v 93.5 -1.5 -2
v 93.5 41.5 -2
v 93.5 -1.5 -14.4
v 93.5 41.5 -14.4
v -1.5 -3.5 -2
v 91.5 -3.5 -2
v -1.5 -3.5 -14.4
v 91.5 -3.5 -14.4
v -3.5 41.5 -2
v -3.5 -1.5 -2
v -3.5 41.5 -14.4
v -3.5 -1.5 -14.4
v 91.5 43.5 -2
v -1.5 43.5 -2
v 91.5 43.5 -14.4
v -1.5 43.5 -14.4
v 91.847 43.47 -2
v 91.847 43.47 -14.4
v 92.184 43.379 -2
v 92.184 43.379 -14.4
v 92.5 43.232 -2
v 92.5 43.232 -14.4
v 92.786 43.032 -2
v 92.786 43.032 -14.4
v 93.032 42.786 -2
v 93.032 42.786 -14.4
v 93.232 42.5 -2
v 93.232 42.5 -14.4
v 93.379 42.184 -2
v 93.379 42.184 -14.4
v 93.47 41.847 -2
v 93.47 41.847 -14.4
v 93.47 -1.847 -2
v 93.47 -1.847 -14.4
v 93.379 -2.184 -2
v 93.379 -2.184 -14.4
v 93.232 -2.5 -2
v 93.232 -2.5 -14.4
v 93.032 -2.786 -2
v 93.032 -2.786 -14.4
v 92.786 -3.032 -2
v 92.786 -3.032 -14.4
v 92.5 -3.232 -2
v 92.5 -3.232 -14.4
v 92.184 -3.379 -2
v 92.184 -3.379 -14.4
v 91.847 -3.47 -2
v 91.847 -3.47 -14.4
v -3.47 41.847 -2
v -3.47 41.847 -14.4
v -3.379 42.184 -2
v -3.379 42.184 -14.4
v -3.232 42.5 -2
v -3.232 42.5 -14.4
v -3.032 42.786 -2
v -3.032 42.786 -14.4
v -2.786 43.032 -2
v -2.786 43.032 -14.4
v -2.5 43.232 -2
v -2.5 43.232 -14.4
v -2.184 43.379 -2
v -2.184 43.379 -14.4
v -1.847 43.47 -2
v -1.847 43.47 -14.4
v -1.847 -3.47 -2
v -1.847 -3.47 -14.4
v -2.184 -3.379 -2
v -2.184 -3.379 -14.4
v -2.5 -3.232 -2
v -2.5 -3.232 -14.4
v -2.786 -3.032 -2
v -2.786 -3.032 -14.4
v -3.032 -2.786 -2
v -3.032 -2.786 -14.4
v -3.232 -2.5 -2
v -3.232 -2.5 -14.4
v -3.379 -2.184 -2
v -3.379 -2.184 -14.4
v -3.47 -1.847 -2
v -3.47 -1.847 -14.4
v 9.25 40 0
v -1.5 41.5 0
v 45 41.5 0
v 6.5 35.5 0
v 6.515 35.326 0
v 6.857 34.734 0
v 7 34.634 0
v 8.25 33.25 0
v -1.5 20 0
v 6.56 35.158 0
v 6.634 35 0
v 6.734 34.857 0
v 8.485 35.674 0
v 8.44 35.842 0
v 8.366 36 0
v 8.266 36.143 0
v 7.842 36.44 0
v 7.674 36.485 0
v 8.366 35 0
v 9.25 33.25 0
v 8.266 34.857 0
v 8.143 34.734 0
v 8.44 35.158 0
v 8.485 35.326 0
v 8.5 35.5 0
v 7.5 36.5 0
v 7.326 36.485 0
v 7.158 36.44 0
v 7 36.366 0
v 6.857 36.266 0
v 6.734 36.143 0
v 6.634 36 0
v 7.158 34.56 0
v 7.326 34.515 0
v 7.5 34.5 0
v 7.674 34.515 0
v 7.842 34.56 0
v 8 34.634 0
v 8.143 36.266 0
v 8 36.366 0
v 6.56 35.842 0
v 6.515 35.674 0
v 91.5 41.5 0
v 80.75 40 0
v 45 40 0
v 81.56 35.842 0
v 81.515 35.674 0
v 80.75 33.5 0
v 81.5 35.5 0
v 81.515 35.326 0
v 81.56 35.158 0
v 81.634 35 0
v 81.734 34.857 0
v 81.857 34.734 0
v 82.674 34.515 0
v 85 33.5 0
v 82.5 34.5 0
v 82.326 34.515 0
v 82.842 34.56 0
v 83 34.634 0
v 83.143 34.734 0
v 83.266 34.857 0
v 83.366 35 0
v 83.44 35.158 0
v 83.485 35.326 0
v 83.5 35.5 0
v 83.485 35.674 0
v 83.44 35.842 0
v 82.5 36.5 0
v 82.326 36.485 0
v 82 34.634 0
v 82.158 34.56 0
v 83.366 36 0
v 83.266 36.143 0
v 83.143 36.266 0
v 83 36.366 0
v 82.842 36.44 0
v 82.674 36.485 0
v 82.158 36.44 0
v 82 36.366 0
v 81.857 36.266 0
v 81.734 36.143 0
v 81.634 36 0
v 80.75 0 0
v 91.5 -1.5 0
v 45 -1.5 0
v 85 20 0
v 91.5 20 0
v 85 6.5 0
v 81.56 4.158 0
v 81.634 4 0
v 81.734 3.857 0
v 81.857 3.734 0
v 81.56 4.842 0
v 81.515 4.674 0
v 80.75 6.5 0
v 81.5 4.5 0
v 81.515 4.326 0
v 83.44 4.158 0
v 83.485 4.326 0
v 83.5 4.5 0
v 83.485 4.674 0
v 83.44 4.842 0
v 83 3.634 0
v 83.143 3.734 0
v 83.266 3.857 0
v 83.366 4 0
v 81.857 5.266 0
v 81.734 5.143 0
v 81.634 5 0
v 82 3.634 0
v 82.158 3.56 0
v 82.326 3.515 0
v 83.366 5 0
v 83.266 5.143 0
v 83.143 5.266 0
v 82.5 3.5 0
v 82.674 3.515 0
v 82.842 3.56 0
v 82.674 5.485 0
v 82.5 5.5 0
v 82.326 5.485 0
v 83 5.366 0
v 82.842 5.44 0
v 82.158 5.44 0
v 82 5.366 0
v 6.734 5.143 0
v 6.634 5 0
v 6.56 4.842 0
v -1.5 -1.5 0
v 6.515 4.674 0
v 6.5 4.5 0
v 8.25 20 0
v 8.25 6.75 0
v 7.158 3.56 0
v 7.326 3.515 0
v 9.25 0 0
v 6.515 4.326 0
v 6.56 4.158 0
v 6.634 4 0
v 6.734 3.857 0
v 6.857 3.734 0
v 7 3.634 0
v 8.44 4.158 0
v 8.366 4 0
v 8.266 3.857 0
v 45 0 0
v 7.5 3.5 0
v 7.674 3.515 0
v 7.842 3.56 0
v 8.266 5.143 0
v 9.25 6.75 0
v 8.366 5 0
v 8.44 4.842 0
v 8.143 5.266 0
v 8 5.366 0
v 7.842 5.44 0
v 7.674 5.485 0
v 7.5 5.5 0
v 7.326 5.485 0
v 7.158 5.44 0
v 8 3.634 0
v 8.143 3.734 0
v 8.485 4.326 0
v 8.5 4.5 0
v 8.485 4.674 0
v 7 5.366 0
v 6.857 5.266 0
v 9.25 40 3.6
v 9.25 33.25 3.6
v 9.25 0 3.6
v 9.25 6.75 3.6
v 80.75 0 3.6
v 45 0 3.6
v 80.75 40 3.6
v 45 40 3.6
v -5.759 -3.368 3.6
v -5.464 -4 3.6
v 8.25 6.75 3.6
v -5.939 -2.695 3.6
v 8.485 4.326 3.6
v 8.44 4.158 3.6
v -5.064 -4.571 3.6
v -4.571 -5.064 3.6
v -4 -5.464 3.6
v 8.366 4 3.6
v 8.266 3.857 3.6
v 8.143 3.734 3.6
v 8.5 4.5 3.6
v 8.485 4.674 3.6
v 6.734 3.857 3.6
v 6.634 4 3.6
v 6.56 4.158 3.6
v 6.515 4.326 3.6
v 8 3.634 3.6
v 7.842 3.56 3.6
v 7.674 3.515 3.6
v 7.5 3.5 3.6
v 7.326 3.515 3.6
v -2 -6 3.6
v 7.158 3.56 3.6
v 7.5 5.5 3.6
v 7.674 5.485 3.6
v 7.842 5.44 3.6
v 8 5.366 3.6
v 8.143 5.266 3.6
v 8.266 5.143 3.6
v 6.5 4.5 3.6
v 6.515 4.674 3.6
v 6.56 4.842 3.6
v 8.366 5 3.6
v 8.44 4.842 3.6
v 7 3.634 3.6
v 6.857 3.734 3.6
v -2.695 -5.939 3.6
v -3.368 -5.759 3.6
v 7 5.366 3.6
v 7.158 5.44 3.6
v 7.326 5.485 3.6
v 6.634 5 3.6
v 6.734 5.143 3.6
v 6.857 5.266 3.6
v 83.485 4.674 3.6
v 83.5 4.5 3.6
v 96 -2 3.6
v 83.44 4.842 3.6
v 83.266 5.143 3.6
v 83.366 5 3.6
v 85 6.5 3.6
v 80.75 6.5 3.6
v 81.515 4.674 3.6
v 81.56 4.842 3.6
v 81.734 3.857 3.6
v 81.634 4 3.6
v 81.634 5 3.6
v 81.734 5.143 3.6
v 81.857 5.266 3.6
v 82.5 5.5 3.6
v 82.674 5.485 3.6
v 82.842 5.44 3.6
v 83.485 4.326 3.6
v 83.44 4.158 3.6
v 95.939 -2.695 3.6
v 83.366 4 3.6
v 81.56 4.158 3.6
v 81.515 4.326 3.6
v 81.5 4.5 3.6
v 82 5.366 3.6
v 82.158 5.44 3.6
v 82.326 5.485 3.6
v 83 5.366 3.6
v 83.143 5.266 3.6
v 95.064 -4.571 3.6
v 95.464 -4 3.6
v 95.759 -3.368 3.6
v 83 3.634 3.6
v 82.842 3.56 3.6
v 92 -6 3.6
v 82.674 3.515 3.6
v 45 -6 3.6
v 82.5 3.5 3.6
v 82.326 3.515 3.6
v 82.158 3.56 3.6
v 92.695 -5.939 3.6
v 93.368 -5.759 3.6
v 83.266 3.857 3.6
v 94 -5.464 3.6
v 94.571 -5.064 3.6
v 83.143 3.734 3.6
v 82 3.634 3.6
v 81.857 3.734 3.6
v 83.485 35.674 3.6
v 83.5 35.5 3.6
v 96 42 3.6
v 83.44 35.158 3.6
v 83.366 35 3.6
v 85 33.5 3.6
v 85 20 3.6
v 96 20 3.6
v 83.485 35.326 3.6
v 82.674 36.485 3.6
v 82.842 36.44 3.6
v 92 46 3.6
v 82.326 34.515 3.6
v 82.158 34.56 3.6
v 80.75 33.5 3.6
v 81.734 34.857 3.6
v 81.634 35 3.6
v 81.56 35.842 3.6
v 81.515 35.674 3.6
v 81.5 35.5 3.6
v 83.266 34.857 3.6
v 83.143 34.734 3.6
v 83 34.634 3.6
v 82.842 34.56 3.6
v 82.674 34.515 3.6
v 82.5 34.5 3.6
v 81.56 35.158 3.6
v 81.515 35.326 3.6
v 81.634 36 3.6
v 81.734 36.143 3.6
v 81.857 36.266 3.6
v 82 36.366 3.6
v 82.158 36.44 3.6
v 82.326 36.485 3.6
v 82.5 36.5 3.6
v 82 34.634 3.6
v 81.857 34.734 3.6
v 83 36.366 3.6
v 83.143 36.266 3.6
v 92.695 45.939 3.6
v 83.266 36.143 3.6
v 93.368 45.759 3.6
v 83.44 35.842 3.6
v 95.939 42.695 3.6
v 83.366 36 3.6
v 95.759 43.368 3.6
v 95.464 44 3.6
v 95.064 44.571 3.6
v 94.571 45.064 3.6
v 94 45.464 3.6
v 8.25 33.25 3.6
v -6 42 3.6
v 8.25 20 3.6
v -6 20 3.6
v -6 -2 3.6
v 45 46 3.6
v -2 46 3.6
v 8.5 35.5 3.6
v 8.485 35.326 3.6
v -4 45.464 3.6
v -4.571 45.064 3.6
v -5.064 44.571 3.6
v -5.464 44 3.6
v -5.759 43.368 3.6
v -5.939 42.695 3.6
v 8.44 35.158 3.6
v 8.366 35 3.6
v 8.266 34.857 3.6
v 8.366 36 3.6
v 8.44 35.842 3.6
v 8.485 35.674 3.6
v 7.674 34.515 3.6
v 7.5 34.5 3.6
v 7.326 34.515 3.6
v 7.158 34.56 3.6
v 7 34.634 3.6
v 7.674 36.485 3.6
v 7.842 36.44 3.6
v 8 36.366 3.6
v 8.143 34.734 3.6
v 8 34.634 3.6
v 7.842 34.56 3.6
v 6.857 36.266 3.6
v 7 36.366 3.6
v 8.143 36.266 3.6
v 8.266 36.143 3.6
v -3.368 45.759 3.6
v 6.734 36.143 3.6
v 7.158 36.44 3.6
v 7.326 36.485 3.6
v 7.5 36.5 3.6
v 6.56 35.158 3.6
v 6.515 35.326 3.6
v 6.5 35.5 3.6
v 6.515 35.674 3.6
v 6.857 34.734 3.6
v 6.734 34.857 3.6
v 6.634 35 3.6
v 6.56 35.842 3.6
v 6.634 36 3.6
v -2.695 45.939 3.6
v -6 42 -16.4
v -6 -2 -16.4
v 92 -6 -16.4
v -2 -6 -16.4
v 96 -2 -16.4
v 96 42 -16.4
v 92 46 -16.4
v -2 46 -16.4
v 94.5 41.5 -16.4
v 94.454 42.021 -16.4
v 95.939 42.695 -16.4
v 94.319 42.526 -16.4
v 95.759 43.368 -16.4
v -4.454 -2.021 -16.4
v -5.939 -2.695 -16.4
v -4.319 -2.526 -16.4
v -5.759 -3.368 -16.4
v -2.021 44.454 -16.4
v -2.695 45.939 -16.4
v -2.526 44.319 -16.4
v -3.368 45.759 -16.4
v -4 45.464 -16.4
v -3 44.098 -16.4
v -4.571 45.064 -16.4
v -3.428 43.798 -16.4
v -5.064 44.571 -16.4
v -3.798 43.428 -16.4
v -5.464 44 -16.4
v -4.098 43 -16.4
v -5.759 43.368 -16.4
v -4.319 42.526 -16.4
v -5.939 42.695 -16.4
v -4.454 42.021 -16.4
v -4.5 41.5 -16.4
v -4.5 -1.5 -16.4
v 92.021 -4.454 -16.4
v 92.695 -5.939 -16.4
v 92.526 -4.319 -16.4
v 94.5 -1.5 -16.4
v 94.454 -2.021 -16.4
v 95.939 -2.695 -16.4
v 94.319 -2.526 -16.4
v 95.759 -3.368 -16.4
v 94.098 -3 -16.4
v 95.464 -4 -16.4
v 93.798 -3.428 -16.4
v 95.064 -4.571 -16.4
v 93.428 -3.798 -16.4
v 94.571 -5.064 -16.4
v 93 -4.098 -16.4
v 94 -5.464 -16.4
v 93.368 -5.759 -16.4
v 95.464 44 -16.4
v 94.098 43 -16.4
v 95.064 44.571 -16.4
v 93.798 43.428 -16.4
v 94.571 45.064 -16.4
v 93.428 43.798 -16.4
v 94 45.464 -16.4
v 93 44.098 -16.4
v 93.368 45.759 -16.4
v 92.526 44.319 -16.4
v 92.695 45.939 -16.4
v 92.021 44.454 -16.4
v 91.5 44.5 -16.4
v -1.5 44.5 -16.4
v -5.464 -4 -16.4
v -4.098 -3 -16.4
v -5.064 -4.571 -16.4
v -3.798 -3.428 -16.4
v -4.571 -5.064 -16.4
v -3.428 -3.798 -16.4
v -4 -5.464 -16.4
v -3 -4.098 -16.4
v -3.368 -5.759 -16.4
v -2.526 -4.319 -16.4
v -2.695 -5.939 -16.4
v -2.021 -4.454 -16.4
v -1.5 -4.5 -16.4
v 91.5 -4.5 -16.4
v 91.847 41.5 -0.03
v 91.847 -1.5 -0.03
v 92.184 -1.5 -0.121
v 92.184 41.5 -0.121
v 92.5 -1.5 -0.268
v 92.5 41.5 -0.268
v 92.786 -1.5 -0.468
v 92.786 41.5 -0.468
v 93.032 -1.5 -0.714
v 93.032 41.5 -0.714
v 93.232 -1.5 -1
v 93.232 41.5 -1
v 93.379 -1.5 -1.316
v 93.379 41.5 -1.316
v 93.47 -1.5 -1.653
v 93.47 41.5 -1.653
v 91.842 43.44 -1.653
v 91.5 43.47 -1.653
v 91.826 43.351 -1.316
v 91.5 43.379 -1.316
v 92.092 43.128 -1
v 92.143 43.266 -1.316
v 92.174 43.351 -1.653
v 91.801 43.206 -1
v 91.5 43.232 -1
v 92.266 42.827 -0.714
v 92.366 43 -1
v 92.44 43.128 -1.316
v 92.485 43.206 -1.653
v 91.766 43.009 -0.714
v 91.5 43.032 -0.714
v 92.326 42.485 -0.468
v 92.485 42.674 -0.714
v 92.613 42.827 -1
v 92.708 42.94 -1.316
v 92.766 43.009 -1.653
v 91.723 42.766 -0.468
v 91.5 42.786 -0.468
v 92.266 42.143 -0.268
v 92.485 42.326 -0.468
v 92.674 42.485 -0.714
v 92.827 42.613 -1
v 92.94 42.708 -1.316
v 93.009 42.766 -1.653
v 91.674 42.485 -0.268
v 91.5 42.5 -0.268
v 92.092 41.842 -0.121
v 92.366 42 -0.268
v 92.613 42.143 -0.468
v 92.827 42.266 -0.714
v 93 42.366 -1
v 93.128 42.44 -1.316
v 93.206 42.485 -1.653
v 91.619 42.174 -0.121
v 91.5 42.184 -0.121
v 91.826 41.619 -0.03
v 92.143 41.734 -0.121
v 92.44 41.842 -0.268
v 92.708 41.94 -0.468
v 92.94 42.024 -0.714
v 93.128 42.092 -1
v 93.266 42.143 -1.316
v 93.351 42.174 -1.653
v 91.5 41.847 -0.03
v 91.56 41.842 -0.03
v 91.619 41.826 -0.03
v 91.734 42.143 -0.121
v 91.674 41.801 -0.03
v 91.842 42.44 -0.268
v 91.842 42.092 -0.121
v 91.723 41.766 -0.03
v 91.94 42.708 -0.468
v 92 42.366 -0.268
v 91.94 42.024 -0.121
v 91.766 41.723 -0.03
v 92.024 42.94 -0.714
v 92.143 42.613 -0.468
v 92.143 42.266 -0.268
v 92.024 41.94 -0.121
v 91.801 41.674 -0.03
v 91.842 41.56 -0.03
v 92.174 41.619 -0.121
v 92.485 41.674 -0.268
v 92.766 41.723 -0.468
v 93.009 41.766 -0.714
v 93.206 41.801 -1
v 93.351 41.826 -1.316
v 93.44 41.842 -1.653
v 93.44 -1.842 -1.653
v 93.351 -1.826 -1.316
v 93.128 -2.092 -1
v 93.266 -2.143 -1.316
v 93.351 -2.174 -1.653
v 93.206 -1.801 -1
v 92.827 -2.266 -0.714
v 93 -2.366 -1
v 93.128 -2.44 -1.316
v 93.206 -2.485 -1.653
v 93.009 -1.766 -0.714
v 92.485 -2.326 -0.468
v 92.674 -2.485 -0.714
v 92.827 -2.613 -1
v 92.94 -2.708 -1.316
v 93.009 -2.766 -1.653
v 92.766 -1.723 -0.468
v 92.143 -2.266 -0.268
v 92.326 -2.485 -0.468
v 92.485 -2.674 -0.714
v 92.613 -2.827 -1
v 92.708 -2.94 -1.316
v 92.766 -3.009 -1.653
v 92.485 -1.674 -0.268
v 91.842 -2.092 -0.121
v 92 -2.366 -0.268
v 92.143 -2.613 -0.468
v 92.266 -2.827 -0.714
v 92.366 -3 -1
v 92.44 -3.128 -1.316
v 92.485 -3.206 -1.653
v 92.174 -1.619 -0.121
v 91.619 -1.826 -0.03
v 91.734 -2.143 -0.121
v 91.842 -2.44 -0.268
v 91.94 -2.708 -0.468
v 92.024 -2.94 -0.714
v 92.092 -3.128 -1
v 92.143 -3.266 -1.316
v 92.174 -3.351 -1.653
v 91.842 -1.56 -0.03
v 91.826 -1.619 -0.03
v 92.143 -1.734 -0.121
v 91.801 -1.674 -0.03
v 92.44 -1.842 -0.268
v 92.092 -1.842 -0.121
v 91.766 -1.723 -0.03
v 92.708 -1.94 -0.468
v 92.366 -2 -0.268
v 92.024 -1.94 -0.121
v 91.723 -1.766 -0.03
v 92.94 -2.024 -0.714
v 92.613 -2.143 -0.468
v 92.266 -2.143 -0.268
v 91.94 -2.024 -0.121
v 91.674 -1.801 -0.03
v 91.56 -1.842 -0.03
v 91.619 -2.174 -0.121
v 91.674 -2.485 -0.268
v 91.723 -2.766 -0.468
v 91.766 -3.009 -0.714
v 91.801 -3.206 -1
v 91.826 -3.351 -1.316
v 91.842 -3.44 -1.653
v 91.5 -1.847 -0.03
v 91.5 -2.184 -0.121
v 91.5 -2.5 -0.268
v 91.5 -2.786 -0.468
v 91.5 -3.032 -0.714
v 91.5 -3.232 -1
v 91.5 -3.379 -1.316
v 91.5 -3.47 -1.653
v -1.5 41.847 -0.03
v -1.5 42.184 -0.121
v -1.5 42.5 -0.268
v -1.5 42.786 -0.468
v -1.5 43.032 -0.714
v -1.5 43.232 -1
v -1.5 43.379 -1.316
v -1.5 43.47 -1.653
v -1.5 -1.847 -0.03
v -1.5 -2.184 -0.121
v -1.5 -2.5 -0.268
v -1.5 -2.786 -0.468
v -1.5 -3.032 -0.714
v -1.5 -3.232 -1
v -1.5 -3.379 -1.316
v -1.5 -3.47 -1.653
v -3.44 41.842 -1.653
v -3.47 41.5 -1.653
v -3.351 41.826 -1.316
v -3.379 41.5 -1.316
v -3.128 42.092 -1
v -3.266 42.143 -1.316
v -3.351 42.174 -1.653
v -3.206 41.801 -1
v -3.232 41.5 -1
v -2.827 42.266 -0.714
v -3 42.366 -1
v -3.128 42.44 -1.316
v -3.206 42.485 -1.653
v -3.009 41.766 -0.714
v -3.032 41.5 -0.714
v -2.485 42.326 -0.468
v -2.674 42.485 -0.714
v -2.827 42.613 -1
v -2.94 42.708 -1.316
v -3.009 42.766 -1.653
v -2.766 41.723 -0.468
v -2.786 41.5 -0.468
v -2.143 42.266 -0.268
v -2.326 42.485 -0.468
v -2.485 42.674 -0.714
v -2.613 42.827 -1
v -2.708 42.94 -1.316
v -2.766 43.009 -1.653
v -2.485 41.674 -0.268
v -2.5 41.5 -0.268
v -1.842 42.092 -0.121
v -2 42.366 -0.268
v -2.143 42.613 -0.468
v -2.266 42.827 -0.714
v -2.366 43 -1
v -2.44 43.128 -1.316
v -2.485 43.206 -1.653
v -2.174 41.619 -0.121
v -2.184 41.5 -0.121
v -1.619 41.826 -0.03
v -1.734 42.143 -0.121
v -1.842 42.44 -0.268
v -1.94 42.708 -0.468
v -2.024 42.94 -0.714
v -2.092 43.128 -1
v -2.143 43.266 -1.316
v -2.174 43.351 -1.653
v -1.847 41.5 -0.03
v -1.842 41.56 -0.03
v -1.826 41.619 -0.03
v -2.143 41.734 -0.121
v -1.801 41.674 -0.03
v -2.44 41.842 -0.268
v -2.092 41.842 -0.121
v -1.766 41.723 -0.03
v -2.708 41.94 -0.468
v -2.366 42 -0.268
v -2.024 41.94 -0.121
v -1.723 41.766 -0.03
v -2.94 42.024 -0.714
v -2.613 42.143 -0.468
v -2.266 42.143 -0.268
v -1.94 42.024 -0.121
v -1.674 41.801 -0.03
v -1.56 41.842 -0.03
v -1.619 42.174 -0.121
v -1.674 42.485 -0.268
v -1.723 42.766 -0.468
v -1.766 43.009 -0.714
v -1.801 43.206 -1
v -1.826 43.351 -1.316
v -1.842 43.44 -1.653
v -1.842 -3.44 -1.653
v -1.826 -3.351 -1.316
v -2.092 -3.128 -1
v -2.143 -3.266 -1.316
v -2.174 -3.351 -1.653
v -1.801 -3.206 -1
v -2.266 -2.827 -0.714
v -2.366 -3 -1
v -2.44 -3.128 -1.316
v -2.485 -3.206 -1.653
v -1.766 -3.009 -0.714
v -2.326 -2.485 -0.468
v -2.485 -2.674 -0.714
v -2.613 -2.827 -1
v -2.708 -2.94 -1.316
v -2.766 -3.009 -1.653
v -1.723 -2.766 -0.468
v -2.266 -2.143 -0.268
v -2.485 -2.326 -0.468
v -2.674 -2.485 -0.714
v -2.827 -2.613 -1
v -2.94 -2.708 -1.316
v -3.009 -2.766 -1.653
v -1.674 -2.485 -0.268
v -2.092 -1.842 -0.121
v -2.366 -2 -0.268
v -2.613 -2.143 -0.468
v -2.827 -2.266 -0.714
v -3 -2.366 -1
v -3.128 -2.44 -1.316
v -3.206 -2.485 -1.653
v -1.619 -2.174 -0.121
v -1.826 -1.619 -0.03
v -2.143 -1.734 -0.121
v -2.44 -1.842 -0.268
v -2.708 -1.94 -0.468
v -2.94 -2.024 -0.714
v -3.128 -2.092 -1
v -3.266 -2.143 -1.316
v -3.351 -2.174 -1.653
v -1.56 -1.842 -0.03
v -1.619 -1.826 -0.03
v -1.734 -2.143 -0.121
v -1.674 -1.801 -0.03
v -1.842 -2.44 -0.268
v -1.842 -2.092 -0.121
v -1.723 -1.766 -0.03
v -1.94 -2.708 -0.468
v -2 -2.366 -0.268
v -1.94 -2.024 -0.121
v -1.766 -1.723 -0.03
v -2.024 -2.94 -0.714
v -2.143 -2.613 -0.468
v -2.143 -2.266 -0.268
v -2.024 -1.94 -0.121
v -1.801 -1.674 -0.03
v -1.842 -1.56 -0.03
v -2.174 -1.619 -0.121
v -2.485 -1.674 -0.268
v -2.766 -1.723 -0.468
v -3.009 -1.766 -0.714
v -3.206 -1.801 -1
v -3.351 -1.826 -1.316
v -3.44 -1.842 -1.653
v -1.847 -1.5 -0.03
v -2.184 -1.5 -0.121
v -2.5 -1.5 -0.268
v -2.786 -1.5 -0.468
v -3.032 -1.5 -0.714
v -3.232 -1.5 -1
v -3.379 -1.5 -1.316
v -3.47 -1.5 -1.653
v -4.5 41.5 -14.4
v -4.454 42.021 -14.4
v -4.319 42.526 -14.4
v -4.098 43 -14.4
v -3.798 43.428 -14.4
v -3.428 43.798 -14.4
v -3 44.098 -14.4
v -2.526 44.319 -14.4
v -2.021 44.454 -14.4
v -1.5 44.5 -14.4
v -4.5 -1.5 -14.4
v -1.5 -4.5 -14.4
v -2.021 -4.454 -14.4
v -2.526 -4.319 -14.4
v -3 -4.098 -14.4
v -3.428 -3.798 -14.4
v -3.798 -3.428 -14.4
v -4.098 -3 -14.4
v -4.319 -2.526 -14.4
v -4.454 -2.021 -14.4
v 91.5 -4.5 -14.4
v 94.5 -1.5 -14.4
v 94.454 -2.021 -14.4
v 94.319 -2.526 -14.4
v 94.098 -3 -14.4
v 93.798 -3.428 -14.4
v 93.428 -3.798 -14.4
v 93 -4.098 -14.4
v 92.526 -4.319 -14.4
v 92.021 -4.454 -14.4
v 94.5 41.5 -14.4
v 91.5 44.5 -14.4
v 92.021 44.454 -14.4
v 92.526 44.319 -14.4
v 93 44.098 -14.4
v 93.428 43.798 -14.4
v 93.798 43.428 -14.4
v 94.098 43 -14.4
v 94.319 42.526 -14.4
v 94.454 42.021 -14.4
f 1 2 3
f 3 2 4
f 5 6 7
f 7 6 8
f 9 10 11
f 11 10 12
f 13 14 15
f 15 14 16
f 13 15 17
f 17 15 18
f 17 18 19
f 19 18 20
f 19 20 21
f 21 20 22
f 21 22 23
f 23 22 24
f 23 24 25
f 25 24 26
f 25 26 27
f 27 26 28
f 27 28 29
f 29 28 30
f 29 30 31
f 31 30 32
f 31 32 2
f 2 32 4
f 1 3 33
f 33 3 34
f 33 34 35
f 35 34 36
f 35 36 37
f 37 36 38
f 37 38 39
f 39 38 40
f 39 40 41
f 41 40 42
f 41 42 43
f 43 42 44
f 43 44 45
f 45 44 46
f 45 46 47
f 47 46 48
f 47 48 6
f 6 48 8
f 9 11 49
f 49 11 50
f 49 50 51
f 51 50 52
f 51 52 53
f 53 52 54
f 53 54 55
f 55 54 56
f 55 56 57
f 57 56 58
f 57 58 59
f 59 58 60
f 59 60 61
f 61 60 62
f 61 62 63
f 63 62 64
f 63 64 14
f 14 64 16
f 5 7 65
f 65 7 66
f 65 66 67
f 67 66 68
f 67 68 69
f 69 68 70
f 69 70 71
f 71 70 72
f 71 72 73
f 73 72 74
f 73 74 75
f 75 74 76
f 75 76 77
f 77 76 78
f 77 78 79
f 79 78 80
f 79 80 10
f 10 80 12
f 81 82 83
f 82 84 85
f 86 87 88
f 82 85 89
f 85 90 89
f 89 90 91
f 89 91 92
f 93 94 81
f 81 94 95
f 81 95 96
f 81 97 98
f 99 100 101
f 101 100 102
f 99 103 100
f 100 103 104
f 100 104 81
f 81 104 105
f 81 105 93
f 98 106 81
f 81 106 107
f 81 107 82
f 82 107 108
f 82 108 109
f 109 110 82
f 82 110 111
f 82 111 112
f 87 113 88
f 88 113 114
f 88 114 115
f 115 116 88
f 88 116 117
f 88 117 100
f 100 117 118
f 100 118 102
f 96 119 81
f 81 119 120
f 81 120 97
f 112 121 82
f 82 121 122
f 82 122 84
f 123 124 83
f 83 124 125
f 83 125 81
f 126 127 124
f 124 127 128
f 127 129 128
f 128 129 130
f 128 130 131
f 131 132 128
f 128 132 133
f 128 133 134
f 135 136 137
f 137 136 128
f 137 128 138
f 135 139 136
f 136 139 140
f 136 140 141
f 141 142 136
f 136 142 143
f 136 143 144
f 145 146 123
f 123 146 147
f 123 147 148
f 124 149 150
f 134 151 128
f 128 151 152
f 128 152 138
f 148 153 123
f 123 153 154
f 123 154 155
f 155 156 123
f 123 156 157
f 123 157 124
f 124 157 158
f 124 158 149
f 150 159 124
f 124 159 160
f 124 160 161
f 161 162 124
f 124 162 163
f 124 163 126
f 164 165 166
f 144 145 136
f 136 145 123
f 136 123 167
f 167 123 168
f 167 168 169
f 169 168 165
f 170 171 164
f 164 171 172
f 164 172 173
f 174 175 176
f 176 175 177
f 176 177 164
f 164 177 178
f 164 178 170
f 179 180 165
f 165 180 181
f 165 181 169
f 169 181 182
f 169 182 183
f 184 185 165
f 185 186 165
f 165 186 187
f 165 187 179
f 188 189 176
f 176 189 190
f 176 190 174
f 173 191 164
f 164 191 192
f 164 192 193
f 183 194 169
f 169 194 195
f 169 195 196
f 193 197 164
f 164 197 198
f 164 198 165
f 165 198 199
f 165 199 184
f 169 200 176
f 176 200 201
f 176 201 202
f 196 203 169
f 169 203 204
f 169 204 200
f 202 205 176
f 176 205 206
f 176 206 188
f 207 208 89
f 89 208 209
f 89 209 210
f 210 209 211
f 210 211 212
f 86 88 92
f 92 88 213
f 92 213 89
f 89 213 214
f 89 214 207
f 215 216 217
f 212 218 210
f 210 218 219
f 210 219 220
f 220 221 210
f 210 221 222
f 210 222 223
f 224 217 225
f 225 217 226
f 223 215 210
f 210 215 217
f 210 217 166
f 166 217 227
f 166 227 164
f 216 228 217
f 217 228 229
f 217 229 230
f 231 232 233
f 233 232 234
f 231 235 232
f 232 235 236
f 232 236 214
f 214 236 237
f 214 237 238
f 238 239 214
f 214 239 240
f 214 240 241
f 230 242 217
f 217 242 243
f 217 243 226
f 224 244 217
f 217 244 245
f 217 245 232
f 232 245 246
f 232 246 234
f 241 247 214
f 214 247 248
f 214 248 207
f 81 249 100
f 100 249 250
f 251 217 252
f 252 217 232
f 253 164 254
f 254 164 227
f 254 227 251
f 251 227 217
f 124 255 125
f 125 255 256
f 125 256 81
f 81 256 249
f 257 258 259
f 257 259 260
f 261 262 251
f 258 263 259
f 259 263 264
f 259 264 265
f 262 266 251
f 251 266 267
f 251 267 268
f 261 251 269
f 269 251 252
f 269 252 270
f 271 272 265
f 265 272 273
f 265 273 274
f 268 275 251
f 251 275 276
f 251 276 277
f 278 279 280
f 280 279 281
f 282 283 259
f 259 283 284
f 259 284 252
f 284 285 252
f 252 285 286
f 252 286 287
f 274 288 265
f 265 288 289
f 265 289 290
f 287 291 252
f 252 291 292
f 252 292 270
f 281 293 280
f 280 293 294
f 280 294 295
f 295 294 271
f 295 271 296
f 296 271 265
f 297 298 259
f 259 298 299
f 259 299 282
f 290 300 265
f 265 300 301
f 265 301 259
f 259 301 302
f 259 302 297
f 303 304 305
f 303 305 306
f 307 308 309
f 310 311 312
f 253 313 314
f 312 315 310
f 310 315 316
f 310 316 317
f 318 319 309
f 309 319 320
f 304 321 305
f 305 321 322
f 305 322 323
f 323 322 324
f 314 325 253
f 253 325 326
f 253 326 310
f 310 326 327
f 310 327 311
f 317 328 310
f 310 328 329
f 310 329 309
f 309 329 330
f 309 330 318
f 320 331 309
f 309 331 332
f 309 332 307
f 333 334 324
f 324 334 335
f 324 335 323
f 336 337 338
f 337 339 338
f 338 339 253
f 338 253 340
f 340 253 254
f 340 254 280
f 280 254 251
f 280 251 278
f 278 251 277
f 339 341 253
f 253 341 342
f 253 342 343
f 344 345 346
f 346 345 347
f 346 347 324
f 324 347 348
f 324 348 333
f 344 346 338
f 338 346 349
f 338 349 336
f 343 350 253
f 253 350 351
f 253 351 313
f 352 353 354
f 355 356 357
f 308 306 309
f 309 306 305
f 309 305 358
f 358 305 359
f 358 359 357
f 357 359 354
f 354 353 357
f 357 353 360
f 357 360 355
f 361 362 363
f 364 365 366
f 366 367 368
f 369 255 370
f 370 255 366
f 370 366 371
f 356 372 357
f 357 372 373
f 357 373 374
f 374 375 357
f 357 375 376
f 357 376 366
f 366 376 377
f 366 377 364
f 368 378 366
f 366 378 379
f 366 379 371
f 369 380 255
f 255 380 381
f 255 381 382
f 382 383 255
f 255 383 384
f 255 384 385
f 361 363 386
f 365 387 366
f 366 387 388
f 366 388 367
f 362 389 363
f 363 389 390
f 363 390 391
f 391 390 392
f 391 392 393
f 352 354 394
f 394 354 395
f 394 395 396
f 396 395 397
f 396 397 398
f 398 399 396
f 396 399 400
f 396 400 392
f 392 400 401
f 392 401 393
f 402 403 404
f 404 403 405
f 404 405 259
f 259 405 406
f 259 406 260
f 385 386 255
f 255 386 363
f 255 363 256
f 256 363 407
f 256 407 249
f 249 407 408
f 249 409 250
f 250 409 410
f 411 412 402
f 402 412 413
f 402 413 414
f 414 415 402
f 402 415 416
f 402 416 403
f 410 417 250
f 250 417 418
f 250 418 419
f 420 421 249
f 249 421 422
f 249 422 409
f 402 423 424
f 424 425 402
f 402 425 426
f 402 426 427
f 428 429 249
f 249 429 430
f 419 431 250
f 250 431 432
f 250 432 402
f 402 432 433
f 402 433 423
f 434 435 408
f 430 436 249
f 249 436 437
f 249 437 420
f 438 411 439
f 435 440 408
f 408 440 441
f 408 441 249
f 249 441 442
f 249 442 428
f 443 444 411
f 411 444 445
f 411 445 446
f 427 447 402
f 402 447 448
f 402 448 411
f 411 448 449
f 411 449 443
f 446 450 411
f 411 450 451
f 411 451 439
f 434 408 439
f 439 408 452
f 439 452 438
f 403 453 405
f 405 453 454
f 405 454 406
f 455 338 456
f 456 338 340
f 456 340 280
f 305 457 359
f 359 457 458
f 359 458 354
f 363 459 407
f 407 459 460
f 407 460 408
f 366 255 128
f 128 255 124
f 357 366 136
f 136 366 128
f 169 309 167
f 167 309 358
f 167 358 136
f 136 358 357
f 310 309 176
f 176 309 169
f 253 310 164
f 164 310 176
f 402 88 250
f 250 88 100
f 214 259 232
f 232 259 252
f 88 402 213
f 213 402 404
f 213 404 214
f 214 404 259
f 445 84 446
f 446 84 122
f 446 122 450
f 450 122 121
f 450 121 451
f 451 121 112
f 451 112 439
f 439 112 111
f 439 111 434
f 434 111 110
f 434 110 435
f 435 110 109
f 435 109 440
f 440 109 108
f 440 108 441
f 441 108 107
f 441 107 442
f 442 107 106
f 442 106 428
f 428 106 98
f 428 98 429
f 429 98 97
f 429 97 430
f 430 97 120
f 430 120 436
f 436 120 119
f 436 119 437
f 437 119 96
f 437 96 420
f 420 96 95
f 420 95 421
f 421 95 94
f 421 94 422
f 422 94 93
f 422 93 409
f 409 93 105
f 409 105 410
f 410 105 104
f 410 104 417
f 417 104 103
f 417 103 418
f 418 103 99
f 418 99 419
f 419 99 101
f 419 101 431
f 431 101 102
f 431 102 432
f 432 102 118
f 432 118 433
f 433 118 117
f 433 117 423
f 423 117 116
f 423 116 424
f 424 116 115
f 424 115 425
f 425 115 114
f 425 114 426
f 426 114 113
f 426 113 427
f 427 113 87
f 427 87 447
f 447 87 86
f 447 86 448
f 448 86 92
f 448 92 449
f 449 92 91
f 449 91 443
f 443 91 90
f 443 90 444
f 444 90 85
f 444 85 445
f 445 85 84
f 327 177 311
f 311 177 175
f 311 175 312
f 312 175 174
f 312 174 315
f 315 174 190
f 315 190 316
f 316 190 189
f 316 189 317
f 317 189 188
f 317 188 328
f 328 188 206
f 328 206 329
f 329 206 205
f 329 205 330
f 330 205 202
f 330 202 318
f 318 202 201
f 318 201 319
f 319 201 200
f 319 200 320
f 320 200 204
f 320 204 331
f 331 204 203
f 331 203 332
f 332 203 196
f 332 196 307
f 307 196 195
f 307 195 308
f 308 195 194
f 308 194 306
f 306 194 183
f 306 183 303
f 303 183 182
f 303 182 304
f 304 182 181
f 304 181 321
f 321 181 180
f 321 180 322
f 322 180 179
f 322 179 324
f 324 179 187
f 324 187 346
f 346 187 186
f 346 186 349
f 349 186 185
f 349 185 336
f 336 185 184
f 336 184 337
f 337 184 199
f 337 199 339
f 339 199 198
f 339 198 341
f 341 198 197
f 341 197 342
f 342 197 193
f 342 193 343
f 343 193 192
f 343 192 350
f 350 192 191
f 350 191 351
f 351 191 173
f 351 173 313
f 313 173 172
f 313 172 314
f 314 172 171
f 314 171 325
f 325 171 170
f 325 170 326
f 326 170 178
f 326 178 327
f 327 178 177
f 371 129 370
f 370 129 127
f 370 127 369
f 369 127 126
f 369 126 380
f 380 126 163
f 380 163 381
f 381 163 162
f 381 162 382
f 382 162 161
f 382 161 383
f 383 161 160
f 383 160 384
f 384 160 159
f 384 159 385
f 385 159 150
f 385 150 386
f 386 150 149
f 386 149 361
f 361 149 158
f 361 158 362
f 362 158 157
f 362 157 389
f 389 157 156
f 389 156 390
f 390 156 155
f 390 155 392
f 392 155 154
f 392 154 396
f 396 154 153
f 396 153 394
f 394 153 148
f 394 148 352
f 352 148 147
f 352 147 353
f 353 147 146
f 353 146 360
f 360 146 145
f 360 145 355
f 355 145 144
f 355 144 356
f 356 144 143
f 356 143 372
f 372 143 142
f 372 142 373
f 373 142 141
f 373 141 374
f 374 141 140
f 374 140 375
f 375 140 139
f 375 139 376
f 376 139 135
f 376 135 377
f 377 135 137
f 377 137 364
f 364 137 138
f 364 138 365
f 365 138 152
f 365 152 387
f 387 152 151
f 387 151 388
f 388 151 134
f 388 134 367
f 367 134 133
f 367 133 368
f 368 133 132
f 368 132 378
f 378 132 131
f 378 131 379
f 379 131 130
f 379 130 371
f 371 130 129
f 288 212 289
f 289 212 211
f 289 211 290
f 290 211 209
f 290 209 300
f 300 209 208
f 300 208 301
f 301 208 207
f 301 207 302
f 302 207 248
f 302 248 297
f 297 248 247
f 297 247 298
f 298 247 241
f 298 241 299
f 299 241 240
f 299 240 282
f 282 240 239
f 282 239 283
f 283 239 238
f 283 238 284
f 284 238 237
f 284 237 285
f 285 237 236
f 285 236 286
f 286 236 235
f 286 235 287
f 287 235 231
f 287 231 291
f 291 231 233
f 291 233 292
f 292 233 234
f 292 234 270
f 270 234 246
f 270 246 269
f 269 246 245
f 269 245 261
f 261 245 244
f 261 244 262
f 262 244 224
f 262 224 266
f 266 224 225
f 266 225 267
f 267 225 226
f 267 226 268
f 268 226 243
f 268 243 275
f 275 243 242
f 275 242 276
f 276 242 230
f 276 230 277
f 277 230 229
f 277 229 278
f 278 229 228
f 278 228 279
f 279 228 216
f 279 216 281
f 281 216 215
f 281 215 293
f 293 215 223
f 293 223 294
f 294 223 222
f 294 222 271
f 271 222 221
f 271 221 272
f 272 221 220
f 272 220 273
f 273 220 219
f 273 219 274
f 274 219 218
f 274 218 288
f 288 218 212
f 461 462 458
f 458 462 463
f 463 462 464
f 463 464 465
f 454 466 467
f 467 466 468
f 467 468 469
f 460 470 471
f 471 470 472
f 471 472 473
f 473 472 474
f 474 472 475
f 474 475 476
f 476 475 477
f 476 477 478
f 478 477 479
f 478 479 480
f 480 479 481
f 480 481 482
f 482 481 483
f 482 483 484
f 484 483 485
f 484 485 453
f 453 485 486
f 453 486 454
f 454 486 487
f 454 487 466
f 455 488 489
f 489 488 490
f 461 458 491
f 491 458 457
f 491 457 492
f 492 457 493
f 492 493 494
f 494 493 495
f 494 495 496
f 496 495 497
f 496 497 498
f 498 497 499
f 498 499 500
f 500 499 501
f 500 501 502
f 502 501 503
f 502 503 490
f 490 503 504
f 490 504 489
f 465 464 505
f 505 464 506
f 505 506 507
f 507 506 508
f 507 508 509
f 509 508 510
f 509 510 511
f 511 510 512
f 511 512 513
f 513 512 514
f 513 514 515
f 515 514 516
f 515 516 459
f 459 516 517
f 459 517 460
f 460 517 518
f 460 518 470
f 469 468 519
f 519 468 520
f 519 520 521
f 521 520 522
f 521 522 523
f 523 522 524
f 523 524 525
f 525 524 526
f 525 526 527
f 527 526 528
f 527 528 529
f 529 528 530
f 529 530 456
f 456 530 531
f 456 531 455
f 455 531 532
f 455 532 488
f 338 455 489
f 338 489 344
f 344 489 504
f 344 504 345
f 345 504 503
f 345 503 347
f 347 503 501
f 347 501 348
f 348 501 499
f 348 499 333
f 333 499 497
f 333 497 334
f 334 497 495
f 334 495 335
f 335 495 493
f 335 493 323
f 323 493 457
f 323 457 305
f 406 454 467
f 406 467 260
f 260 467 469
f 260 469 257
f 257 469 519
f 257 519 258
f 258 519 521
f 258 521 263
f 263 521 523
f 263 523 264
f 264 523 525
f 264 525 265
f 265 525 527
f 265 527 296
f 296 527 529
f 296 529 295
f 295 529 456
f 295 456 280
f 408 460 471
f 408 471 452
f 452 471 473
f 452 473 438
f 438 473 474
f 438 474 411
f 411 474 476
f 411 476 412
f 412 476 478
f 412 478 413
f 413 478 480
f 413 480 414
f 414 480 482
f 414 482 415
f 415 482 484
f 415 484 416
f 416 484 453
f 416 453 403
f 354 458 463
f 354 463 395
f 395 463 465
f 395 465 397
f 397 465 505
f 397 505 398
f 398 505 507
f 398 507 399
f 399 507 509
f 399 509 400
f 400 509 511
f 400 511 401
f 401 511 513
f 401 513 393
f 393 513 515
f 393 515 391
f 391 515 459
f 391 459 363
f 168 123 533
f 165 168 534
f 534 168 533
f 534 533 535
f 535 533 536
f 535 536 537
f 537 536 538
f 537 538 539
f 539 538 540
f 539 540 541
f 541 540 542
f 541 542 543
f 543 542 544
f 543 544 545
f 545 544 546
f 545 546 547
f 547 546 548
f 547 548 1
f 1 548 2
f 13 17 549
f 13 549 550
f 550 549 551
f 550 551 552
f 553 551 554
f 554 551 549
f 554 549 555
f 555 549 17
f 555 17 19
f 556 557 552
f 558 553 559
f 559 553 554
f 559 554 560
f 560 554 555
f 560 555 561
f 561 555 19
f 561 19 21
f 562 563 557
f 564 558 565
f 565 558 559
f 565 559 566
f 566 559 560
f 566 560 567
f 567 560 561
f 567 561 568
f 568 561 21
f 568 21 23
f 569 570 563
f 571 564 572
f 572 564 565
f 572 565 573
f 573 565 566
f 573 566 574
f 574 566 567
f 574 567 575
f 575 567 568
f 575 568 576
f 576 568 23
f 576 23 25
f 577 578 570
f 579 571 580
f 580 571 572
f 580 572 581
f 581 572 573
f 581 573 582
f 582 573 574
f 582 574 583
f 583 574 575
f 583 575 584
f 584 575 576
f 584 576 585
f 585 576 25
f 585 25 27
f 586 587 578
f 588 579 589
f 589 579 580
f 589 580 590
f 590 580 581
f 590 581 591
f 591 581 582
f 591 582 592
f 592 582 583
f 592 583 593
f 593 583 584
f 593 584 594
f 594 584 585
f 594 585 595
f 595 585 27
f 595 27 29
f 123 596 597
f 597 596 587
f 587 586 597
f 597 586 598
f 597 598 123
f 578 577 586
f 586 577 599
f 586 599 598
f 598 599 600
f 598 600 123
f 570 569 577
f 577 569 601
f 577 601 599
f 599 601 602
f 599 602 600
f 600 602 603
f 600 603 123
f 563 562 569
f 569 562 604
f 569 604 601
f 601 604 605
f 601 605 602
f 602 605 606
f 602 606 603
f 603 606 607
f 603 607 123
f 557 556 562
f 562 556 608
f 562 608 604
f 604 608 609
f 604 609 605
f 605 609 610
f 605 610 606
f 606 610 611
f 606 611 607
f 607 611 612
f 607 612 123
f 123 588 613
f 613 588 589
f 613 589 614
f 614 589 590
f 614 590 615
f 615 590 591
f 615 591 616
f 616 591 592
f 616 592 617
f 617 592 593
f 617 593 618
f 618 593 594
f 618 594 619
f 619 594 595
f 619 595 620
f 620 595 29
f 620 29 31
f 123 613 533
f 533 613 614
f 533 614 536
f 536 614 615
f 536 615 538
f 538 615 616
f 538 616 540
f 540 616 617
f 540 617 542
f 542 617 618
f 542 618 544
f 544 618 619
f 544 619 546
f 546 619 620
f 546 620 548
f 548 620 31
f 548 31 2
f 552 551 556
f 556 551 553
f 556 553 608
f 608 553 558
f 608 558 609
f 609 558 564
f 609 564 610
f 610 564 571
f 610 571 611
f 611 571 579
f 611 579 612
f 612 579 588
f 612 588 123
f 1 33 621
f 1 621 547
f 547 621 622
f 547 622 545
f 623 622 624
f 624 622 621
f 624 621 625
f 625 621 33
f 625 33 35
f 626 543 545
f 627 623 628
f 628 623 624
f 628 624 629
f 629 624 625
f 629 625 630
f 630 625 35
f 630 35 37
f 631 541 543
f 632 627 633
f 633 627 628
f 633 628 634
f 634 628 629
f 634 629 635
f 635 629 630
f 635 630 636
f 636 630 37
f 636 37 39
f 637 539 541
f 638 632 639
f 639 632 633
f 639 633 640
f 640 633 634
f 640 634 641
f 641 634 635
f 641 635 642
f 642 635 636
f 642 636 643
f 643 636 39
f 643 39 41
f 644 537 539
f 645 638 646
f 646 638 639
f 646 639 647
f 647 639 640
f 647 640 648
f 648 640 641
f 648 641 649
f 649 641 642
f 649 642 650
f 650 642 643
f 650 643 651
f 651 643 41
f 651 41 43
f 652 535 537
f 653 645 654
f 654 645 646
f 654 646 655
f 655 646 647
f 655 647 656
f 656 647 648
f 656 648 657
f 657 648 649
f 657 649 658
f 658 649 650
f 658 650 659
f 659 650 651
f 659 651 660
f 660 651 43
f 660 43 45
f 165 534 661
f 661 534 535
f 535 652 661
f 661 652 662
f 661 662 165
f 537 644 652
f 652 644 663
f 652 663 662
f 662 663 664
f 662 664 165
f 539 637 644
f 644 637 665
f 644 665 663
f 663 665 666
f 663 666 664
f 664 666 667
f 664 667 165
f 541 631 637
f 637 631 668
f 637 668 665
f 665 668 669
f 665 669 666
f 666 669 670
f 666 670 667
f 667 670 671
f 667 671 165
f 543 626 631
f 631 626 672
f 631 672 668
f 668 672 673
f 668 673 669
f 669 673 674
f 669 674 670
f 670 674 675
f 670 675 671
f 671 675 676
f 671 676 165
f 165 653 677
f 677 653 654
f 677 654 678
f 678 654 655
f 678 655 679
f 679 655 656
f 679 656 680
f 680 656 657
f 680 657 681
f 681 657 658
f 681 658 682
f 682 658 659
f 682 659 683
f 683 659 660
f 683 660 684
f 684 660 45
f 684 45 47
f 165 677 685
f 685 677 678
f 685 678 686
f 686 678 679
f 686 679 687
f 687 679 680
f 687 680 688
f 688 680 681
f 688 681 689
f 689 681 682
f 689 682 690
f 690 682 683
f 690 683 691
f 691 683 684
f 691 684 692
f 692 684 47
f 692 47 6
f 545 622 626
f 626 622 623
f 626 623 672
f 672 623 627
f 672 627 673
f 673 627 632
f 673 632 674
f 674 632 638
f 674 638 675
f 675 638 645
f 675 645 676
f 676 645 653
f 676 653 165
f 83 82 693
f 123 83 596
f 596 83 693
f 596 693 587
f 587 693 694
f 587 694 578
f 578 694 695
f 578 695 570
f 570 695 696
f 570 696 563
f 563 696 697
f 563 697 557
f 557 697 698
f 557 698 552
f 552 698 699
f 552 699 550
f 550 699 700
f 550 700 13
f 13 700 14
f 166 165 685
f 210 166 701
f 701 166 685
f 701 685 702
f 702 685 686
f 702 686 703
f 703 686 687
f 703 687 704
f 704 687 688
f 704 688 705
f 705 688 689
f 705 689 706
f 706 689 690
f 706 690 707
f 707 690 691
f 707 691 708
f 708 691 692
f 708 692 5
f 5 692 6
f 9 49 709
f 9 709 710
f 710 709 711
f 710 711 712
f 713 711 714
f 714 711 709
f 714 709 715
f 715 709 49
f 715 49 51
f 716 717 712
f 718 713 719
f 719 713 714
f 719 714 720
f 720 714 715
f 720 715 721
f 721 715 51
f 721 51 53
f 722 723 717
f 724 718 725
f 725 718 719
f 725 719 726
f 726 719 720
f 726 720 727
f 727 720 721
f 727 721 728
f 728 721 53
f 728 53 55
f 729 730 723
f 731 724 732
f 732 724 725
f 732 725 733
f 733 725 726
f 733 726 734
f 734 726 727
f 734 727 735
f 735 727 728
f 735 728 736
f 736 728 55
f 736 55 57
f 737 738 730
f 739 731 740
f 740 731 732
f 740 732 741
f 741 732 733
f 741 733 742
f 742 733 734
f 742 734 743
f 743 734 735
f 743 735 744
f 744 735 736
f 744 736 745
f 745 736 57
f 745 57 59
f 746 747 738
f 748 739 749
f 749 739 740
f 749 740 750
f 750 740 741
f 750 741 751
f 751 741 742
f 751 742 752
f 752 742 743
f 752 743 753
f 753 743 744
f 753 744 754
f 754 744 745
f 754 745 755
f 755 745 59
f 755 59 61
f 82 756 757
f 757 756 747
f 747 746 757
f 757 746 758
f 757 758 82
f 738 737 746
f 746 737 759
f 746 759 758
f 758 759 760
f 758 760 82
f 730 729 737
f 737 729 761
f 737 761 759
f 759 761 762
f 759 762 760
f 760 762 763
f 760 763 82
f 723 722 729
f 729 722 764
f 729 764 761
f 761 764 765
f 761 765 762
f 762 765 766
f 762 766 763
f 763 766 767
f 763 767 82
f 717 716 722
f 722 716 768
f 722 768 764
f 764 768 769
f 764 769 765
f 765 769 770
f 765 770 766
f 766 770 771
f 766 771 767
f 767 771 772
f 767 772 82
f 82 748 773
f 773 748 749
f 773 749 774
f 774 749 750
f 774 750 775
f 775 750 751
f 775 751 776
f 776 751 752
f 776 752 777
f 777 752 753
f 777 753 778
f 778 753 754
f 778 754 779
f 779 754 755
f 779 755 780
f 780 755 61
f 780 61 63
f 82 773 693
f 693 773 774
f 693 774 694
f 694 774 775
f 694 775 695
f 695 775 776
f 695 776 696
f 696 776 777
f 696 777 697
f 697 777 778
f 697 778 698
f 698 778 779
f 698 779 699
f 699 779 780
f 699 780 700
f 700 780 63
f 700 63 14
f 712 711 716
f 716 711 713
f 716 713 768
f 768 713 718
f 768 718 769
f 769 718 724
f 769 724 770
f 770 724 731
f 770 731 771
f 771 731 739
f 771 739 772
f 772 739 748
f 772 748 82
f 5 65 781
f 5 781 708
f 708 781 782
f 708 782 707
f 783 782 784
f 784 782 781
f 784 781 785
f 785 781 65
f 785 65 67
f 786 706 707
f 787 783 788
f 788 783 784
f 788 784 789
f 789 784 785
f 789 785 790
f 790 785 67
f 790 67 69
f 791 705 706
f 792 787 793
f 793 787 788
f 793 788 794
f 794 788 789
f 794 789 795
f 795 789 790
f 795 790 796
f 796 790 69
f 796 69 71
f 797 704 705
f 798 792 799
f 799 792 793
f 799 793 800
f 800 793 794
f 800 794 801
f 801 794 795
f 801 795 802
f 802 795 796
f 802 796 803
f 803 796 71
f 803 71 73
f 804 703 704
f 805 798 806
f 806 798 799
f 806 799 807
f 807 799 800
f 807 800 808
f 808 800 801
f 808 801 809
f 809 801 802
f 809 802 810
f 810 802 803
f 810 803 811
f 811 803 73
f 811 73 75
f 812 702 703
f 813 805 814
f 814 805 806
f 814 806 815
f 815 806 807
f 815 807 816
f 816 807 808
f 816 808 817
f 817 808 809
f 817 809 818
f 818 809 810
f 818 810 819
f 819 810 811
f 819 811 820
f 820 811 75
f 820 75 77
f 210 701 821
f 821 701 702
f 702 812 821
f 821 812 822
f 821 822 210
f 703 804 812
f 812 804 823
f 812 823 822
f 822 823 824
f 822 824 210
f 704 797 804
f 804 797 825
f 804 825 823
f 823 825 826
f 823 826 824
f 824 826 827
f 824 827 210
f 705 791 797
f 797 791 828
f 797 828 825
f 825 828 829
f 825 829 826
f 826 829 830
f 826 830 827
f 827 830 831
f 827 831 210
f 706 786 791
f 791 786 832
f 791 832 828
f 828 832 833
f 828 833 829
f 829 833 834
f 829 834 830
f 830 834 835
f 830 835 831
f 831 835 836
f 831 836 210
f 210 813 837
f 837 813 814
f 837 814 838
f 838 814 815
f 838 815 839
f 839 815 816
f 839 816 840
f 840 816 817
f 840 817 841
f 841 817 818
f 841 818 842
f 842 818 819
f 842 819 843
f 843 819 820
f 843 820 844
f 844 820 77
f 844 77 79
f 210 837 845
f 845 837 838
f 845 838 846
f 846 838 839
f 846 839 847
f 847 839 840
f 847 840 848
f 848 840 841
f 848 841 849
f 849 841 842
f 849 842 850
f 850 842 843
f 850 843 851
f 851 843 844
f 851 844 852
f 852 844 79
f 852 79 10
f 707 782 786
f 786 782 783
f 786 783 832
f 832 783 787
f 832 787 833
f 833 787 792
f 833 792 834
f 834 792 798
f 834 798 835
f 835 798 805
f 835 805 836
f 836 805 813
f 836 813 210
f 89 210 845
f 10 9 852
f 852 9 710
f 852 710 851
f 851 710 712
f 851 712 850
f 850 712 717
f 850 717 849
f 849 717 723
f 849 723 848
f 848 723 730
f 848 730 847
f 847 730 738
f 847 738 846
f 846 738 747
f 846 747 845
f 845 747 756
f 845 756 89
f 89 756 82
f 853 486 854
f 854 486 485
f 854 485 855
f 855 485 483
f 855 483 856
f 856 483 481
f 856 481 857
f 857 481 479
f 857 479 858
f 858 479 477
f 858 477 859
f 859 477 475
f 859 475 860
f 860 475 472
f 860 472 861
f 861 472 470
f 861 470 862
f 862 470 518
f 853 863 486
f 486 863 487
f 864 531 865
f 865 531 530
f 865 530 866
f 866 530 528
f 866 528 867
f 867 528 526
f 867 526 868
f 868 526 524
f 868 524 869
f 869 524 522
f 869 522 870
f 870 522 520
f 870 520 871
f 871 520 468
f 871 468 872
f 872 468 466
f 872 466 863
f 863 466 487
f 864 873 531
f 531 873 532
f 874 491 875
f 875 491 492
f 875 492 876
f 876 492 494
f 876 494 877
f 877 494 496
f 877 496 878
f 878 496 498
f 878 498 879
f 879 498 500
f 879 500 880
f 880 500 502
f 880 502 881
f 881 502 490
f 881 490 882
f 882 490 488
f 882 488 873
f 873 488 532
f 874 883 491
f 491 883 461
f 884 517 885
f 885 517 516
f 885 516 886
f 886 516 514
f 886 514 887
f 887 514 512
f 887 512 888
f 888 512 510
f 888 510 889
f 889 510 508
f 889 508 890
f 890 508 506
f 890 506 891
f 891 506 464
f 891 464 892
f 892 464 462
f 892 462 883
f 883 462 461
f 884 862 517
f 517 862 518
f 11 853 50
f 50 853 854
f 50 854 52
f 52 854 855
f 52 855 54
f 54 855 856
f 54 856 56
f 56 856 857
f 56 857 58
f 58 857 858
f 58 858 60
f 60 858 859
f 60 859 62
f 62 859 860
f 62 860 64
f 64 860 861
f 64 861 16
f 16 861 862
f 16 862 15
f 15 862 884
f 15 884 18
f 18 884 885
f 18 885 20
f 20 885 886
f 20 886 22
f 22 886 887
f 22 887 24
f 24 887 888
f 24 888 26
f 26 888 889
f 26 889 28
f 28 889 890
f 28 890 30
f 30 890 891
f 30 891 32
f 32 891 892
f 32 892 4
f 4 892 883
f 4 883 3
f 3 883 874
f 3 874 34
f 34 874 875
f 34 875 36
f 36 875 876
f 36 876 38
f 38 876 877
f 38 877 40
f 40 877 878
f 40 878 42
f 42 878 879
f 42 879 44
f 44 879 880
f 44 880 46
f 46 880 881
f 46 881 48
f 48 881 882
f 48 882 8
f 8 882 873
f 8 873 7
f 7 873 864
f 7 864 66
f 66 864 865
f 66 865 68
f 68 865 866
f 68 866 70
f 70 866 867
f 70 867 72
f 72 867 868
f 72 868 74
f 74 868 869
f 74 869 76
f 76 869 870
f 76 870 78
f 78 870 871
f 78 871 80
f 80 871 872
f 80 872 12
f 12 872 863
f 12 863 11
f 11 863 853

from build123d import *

# Parameters (mm, degrees)
ESQUISSE1_W                     = 102
ESQUISSE1_H                     = 52
ESQUISSE1_W_2                   = 90
ESQUISSE1_H_2                   = 40
EXTRU_MINCE1_DEPTH              = 3.6
ESQUISSE2_W                     = 9.25
ESQUISSE2_H                     = 40
BOSS_EXTRU_1_DEPTH              = 3.6
ESQUISSE3_R                     = 1
ESQUISSE3_W                     = 4.29767414
ESQUISSE3_H                     = 26.5
ENL_V_MAT_EXTRU_1_DEPTH         = 3.6
ESQUISSE5_W                     = 102
ESQUISSE5_H                     = 52
ESQUISSE5_W_2                   = 97
ESQUISSE5_H_2                   = 47
EXTRU_MINCE2_DEPTH              = 20
CONG_1_R                        = 4
CONG_2_R                        = 2
ENL_V_DE_MAT_EXTRU_MINCE1_DEPTH = 2


with BuildPart() as part:
    # Esquisse1 → Extru.-Mince1 (new body)
    with BuildSketch(Plane.XY):
        with Locations((45, 20)):
            Rectangle(ESQUISSE1_W, ESQUISSE1_H)
        with Locations((45, 20)):
            Rectangle(ESQUISSE1_W_2, ESQUISSE1_H_2, mode=Mode.SUBTRACT)
    extrude(amount=EXTRU_MINCE1_DEPTH)

    # Esquisse2 → Boss.-Extru.1 (add)
    with BuildSketch(Plane.XY):
        with Locations((4.625, 20)):
            Rectangle(ESQUISSE2_W, ESQUISSE2_H)
        Polygon((90, 40), (90, 0), (80.75, 0), (80.75, 6.5), (85, 6.5), (85, 33.5), (80.75, 33.5), (80.75, 40), align=None)
    extrude(amount=BOSS_EXTRU_1_DEPTH)

    # Esquisse3 → Enlèv. mat.-Extru.1 (cut)
    with BuildSketch(Plane.XY):
        with Locations((7.5, 35.5)):
            Circle(ESQUISSE3_R)
        with Locations((7.5, 4.5)):
            Circle(ESQUISSE3_R)
        with Locations((82.5, 35.5)):
            Circle(ESQUISSE3_R)
        with Locations((82.5, 4.5)):
            Circle(ESQUISSE3_R)
        with Locations((10.39883707, 20)):
            Rectangle(ESQUISSE3_W, ESQUISSE3_H)
    extrude(amount=ENL_V_MAT_EXTRU_1_DEPTH, mode=Mode.SUBTRACT)

    # Esquisse5 → Extru.-Mince2 (add)
    with BuildSketch(Plane.XY.offset(3.6)):
        with Locations((45, 20)):
            Rectangle(ESQUISSE5_W, ESQUISSE5_H)
        with Locations((45, 20)):
            Rectangle(ESQUISSE5_W_2, ESQUISSE5_H_2, mode=Mode.SUBTRACT)
    extrude(amount=-EXTRU_MINCE2_DEPTH)

    # Congé1
    cong_1_edges = [part.edges().sort_by_distance(p)[0] for p in [
        (-6, 46, -6.4),
        (96, 46, -6.4),
        (96, -6, -6.4),
        (-6, -6, -6.4),
    ]]
    fillet(cong_1_edges, radius=CONG_1_R)

    # Congé2
    cong_2_edges = [part.edges().sort_by_distance(p)[0] for p in [
        (45, -3.5, 0),
        (93.5, 20, 0),
        (93.5, -3.5, -8.2),
        (-3.5, -3.5, -8.2),
        (-3.5, 43.5, -8.2),
        (93.5, 43.5, -8.2),
        (45, 43.5, 0),
        (-3.5, 20, 0),
    ]]
    fillet(cong_2_edges, radius=CONG_2_R)

    # Esquisse6 → Enlèv. de mat.-Extru.-Mince1 (cut)
    with BuildSketch(Plane(origin=(0, 0, -16.4), x_dir=(-1, 0, 0), z_dir=(0, 0, -1))):
        with BuildLine():
            Line((1.5, 44.5), (-91.5, 44.5))
            ThreePointArc((-91.5, 44.5), (-93.621320344, 43.621320344), (-94.5, 41.5))
            Line((-94.5, 41.5), (-94.5, -1.5))
            ThreePointArc((-94.5, -1.5), (-93.621320344, -3.621320344), (-91.5, -4.5))
            Line((-91.5, -4.5), (1.5, -4.5))
            ThreePointArc((1.5, -4.5), (3.621320344, -3.621320344), (4.5, -1.5))
            Line((4.5, -1.5), (4.5, 41.5))
            ThreePointArc((4.5, 41.5), (3.621320344, 43.621320344), (1.5, 44.5))
        make_face()
        with BuildLine():
            Line((1.5, 43.5), (-91.5, 43.5))
            ThreePointArc((-91.5, 43.5), (-92.914213562, 42.914213562), (-93.5, 41.5))
            Line((-93.5, 41.5), (-93.5, -1.5))
            ThreePointArc((-93.5, -1.5), (-92.914213562, -2.914213562), (-91.5, -3.5))
            Line((-91.5, -3.5), (1.5, -3.5))
            ThreePointArc((1.5, -3.5), (2.914213562, -2.914213562), (3.5, -1.5))
            Line((3.5, -1.5), (3.5, 41.5))
            ThreePointArc((3.5, 41.5), (2.914213562, 42.914213562), (1.5, 43.5))
        make_face(mode=Mode.SUBTRACT)
    extrude(amount=-ENL_V_DE_MAT_EXTRU_MINCE1_DEPTH, mode=Mode.SUBTRACT)


solid = part.part
